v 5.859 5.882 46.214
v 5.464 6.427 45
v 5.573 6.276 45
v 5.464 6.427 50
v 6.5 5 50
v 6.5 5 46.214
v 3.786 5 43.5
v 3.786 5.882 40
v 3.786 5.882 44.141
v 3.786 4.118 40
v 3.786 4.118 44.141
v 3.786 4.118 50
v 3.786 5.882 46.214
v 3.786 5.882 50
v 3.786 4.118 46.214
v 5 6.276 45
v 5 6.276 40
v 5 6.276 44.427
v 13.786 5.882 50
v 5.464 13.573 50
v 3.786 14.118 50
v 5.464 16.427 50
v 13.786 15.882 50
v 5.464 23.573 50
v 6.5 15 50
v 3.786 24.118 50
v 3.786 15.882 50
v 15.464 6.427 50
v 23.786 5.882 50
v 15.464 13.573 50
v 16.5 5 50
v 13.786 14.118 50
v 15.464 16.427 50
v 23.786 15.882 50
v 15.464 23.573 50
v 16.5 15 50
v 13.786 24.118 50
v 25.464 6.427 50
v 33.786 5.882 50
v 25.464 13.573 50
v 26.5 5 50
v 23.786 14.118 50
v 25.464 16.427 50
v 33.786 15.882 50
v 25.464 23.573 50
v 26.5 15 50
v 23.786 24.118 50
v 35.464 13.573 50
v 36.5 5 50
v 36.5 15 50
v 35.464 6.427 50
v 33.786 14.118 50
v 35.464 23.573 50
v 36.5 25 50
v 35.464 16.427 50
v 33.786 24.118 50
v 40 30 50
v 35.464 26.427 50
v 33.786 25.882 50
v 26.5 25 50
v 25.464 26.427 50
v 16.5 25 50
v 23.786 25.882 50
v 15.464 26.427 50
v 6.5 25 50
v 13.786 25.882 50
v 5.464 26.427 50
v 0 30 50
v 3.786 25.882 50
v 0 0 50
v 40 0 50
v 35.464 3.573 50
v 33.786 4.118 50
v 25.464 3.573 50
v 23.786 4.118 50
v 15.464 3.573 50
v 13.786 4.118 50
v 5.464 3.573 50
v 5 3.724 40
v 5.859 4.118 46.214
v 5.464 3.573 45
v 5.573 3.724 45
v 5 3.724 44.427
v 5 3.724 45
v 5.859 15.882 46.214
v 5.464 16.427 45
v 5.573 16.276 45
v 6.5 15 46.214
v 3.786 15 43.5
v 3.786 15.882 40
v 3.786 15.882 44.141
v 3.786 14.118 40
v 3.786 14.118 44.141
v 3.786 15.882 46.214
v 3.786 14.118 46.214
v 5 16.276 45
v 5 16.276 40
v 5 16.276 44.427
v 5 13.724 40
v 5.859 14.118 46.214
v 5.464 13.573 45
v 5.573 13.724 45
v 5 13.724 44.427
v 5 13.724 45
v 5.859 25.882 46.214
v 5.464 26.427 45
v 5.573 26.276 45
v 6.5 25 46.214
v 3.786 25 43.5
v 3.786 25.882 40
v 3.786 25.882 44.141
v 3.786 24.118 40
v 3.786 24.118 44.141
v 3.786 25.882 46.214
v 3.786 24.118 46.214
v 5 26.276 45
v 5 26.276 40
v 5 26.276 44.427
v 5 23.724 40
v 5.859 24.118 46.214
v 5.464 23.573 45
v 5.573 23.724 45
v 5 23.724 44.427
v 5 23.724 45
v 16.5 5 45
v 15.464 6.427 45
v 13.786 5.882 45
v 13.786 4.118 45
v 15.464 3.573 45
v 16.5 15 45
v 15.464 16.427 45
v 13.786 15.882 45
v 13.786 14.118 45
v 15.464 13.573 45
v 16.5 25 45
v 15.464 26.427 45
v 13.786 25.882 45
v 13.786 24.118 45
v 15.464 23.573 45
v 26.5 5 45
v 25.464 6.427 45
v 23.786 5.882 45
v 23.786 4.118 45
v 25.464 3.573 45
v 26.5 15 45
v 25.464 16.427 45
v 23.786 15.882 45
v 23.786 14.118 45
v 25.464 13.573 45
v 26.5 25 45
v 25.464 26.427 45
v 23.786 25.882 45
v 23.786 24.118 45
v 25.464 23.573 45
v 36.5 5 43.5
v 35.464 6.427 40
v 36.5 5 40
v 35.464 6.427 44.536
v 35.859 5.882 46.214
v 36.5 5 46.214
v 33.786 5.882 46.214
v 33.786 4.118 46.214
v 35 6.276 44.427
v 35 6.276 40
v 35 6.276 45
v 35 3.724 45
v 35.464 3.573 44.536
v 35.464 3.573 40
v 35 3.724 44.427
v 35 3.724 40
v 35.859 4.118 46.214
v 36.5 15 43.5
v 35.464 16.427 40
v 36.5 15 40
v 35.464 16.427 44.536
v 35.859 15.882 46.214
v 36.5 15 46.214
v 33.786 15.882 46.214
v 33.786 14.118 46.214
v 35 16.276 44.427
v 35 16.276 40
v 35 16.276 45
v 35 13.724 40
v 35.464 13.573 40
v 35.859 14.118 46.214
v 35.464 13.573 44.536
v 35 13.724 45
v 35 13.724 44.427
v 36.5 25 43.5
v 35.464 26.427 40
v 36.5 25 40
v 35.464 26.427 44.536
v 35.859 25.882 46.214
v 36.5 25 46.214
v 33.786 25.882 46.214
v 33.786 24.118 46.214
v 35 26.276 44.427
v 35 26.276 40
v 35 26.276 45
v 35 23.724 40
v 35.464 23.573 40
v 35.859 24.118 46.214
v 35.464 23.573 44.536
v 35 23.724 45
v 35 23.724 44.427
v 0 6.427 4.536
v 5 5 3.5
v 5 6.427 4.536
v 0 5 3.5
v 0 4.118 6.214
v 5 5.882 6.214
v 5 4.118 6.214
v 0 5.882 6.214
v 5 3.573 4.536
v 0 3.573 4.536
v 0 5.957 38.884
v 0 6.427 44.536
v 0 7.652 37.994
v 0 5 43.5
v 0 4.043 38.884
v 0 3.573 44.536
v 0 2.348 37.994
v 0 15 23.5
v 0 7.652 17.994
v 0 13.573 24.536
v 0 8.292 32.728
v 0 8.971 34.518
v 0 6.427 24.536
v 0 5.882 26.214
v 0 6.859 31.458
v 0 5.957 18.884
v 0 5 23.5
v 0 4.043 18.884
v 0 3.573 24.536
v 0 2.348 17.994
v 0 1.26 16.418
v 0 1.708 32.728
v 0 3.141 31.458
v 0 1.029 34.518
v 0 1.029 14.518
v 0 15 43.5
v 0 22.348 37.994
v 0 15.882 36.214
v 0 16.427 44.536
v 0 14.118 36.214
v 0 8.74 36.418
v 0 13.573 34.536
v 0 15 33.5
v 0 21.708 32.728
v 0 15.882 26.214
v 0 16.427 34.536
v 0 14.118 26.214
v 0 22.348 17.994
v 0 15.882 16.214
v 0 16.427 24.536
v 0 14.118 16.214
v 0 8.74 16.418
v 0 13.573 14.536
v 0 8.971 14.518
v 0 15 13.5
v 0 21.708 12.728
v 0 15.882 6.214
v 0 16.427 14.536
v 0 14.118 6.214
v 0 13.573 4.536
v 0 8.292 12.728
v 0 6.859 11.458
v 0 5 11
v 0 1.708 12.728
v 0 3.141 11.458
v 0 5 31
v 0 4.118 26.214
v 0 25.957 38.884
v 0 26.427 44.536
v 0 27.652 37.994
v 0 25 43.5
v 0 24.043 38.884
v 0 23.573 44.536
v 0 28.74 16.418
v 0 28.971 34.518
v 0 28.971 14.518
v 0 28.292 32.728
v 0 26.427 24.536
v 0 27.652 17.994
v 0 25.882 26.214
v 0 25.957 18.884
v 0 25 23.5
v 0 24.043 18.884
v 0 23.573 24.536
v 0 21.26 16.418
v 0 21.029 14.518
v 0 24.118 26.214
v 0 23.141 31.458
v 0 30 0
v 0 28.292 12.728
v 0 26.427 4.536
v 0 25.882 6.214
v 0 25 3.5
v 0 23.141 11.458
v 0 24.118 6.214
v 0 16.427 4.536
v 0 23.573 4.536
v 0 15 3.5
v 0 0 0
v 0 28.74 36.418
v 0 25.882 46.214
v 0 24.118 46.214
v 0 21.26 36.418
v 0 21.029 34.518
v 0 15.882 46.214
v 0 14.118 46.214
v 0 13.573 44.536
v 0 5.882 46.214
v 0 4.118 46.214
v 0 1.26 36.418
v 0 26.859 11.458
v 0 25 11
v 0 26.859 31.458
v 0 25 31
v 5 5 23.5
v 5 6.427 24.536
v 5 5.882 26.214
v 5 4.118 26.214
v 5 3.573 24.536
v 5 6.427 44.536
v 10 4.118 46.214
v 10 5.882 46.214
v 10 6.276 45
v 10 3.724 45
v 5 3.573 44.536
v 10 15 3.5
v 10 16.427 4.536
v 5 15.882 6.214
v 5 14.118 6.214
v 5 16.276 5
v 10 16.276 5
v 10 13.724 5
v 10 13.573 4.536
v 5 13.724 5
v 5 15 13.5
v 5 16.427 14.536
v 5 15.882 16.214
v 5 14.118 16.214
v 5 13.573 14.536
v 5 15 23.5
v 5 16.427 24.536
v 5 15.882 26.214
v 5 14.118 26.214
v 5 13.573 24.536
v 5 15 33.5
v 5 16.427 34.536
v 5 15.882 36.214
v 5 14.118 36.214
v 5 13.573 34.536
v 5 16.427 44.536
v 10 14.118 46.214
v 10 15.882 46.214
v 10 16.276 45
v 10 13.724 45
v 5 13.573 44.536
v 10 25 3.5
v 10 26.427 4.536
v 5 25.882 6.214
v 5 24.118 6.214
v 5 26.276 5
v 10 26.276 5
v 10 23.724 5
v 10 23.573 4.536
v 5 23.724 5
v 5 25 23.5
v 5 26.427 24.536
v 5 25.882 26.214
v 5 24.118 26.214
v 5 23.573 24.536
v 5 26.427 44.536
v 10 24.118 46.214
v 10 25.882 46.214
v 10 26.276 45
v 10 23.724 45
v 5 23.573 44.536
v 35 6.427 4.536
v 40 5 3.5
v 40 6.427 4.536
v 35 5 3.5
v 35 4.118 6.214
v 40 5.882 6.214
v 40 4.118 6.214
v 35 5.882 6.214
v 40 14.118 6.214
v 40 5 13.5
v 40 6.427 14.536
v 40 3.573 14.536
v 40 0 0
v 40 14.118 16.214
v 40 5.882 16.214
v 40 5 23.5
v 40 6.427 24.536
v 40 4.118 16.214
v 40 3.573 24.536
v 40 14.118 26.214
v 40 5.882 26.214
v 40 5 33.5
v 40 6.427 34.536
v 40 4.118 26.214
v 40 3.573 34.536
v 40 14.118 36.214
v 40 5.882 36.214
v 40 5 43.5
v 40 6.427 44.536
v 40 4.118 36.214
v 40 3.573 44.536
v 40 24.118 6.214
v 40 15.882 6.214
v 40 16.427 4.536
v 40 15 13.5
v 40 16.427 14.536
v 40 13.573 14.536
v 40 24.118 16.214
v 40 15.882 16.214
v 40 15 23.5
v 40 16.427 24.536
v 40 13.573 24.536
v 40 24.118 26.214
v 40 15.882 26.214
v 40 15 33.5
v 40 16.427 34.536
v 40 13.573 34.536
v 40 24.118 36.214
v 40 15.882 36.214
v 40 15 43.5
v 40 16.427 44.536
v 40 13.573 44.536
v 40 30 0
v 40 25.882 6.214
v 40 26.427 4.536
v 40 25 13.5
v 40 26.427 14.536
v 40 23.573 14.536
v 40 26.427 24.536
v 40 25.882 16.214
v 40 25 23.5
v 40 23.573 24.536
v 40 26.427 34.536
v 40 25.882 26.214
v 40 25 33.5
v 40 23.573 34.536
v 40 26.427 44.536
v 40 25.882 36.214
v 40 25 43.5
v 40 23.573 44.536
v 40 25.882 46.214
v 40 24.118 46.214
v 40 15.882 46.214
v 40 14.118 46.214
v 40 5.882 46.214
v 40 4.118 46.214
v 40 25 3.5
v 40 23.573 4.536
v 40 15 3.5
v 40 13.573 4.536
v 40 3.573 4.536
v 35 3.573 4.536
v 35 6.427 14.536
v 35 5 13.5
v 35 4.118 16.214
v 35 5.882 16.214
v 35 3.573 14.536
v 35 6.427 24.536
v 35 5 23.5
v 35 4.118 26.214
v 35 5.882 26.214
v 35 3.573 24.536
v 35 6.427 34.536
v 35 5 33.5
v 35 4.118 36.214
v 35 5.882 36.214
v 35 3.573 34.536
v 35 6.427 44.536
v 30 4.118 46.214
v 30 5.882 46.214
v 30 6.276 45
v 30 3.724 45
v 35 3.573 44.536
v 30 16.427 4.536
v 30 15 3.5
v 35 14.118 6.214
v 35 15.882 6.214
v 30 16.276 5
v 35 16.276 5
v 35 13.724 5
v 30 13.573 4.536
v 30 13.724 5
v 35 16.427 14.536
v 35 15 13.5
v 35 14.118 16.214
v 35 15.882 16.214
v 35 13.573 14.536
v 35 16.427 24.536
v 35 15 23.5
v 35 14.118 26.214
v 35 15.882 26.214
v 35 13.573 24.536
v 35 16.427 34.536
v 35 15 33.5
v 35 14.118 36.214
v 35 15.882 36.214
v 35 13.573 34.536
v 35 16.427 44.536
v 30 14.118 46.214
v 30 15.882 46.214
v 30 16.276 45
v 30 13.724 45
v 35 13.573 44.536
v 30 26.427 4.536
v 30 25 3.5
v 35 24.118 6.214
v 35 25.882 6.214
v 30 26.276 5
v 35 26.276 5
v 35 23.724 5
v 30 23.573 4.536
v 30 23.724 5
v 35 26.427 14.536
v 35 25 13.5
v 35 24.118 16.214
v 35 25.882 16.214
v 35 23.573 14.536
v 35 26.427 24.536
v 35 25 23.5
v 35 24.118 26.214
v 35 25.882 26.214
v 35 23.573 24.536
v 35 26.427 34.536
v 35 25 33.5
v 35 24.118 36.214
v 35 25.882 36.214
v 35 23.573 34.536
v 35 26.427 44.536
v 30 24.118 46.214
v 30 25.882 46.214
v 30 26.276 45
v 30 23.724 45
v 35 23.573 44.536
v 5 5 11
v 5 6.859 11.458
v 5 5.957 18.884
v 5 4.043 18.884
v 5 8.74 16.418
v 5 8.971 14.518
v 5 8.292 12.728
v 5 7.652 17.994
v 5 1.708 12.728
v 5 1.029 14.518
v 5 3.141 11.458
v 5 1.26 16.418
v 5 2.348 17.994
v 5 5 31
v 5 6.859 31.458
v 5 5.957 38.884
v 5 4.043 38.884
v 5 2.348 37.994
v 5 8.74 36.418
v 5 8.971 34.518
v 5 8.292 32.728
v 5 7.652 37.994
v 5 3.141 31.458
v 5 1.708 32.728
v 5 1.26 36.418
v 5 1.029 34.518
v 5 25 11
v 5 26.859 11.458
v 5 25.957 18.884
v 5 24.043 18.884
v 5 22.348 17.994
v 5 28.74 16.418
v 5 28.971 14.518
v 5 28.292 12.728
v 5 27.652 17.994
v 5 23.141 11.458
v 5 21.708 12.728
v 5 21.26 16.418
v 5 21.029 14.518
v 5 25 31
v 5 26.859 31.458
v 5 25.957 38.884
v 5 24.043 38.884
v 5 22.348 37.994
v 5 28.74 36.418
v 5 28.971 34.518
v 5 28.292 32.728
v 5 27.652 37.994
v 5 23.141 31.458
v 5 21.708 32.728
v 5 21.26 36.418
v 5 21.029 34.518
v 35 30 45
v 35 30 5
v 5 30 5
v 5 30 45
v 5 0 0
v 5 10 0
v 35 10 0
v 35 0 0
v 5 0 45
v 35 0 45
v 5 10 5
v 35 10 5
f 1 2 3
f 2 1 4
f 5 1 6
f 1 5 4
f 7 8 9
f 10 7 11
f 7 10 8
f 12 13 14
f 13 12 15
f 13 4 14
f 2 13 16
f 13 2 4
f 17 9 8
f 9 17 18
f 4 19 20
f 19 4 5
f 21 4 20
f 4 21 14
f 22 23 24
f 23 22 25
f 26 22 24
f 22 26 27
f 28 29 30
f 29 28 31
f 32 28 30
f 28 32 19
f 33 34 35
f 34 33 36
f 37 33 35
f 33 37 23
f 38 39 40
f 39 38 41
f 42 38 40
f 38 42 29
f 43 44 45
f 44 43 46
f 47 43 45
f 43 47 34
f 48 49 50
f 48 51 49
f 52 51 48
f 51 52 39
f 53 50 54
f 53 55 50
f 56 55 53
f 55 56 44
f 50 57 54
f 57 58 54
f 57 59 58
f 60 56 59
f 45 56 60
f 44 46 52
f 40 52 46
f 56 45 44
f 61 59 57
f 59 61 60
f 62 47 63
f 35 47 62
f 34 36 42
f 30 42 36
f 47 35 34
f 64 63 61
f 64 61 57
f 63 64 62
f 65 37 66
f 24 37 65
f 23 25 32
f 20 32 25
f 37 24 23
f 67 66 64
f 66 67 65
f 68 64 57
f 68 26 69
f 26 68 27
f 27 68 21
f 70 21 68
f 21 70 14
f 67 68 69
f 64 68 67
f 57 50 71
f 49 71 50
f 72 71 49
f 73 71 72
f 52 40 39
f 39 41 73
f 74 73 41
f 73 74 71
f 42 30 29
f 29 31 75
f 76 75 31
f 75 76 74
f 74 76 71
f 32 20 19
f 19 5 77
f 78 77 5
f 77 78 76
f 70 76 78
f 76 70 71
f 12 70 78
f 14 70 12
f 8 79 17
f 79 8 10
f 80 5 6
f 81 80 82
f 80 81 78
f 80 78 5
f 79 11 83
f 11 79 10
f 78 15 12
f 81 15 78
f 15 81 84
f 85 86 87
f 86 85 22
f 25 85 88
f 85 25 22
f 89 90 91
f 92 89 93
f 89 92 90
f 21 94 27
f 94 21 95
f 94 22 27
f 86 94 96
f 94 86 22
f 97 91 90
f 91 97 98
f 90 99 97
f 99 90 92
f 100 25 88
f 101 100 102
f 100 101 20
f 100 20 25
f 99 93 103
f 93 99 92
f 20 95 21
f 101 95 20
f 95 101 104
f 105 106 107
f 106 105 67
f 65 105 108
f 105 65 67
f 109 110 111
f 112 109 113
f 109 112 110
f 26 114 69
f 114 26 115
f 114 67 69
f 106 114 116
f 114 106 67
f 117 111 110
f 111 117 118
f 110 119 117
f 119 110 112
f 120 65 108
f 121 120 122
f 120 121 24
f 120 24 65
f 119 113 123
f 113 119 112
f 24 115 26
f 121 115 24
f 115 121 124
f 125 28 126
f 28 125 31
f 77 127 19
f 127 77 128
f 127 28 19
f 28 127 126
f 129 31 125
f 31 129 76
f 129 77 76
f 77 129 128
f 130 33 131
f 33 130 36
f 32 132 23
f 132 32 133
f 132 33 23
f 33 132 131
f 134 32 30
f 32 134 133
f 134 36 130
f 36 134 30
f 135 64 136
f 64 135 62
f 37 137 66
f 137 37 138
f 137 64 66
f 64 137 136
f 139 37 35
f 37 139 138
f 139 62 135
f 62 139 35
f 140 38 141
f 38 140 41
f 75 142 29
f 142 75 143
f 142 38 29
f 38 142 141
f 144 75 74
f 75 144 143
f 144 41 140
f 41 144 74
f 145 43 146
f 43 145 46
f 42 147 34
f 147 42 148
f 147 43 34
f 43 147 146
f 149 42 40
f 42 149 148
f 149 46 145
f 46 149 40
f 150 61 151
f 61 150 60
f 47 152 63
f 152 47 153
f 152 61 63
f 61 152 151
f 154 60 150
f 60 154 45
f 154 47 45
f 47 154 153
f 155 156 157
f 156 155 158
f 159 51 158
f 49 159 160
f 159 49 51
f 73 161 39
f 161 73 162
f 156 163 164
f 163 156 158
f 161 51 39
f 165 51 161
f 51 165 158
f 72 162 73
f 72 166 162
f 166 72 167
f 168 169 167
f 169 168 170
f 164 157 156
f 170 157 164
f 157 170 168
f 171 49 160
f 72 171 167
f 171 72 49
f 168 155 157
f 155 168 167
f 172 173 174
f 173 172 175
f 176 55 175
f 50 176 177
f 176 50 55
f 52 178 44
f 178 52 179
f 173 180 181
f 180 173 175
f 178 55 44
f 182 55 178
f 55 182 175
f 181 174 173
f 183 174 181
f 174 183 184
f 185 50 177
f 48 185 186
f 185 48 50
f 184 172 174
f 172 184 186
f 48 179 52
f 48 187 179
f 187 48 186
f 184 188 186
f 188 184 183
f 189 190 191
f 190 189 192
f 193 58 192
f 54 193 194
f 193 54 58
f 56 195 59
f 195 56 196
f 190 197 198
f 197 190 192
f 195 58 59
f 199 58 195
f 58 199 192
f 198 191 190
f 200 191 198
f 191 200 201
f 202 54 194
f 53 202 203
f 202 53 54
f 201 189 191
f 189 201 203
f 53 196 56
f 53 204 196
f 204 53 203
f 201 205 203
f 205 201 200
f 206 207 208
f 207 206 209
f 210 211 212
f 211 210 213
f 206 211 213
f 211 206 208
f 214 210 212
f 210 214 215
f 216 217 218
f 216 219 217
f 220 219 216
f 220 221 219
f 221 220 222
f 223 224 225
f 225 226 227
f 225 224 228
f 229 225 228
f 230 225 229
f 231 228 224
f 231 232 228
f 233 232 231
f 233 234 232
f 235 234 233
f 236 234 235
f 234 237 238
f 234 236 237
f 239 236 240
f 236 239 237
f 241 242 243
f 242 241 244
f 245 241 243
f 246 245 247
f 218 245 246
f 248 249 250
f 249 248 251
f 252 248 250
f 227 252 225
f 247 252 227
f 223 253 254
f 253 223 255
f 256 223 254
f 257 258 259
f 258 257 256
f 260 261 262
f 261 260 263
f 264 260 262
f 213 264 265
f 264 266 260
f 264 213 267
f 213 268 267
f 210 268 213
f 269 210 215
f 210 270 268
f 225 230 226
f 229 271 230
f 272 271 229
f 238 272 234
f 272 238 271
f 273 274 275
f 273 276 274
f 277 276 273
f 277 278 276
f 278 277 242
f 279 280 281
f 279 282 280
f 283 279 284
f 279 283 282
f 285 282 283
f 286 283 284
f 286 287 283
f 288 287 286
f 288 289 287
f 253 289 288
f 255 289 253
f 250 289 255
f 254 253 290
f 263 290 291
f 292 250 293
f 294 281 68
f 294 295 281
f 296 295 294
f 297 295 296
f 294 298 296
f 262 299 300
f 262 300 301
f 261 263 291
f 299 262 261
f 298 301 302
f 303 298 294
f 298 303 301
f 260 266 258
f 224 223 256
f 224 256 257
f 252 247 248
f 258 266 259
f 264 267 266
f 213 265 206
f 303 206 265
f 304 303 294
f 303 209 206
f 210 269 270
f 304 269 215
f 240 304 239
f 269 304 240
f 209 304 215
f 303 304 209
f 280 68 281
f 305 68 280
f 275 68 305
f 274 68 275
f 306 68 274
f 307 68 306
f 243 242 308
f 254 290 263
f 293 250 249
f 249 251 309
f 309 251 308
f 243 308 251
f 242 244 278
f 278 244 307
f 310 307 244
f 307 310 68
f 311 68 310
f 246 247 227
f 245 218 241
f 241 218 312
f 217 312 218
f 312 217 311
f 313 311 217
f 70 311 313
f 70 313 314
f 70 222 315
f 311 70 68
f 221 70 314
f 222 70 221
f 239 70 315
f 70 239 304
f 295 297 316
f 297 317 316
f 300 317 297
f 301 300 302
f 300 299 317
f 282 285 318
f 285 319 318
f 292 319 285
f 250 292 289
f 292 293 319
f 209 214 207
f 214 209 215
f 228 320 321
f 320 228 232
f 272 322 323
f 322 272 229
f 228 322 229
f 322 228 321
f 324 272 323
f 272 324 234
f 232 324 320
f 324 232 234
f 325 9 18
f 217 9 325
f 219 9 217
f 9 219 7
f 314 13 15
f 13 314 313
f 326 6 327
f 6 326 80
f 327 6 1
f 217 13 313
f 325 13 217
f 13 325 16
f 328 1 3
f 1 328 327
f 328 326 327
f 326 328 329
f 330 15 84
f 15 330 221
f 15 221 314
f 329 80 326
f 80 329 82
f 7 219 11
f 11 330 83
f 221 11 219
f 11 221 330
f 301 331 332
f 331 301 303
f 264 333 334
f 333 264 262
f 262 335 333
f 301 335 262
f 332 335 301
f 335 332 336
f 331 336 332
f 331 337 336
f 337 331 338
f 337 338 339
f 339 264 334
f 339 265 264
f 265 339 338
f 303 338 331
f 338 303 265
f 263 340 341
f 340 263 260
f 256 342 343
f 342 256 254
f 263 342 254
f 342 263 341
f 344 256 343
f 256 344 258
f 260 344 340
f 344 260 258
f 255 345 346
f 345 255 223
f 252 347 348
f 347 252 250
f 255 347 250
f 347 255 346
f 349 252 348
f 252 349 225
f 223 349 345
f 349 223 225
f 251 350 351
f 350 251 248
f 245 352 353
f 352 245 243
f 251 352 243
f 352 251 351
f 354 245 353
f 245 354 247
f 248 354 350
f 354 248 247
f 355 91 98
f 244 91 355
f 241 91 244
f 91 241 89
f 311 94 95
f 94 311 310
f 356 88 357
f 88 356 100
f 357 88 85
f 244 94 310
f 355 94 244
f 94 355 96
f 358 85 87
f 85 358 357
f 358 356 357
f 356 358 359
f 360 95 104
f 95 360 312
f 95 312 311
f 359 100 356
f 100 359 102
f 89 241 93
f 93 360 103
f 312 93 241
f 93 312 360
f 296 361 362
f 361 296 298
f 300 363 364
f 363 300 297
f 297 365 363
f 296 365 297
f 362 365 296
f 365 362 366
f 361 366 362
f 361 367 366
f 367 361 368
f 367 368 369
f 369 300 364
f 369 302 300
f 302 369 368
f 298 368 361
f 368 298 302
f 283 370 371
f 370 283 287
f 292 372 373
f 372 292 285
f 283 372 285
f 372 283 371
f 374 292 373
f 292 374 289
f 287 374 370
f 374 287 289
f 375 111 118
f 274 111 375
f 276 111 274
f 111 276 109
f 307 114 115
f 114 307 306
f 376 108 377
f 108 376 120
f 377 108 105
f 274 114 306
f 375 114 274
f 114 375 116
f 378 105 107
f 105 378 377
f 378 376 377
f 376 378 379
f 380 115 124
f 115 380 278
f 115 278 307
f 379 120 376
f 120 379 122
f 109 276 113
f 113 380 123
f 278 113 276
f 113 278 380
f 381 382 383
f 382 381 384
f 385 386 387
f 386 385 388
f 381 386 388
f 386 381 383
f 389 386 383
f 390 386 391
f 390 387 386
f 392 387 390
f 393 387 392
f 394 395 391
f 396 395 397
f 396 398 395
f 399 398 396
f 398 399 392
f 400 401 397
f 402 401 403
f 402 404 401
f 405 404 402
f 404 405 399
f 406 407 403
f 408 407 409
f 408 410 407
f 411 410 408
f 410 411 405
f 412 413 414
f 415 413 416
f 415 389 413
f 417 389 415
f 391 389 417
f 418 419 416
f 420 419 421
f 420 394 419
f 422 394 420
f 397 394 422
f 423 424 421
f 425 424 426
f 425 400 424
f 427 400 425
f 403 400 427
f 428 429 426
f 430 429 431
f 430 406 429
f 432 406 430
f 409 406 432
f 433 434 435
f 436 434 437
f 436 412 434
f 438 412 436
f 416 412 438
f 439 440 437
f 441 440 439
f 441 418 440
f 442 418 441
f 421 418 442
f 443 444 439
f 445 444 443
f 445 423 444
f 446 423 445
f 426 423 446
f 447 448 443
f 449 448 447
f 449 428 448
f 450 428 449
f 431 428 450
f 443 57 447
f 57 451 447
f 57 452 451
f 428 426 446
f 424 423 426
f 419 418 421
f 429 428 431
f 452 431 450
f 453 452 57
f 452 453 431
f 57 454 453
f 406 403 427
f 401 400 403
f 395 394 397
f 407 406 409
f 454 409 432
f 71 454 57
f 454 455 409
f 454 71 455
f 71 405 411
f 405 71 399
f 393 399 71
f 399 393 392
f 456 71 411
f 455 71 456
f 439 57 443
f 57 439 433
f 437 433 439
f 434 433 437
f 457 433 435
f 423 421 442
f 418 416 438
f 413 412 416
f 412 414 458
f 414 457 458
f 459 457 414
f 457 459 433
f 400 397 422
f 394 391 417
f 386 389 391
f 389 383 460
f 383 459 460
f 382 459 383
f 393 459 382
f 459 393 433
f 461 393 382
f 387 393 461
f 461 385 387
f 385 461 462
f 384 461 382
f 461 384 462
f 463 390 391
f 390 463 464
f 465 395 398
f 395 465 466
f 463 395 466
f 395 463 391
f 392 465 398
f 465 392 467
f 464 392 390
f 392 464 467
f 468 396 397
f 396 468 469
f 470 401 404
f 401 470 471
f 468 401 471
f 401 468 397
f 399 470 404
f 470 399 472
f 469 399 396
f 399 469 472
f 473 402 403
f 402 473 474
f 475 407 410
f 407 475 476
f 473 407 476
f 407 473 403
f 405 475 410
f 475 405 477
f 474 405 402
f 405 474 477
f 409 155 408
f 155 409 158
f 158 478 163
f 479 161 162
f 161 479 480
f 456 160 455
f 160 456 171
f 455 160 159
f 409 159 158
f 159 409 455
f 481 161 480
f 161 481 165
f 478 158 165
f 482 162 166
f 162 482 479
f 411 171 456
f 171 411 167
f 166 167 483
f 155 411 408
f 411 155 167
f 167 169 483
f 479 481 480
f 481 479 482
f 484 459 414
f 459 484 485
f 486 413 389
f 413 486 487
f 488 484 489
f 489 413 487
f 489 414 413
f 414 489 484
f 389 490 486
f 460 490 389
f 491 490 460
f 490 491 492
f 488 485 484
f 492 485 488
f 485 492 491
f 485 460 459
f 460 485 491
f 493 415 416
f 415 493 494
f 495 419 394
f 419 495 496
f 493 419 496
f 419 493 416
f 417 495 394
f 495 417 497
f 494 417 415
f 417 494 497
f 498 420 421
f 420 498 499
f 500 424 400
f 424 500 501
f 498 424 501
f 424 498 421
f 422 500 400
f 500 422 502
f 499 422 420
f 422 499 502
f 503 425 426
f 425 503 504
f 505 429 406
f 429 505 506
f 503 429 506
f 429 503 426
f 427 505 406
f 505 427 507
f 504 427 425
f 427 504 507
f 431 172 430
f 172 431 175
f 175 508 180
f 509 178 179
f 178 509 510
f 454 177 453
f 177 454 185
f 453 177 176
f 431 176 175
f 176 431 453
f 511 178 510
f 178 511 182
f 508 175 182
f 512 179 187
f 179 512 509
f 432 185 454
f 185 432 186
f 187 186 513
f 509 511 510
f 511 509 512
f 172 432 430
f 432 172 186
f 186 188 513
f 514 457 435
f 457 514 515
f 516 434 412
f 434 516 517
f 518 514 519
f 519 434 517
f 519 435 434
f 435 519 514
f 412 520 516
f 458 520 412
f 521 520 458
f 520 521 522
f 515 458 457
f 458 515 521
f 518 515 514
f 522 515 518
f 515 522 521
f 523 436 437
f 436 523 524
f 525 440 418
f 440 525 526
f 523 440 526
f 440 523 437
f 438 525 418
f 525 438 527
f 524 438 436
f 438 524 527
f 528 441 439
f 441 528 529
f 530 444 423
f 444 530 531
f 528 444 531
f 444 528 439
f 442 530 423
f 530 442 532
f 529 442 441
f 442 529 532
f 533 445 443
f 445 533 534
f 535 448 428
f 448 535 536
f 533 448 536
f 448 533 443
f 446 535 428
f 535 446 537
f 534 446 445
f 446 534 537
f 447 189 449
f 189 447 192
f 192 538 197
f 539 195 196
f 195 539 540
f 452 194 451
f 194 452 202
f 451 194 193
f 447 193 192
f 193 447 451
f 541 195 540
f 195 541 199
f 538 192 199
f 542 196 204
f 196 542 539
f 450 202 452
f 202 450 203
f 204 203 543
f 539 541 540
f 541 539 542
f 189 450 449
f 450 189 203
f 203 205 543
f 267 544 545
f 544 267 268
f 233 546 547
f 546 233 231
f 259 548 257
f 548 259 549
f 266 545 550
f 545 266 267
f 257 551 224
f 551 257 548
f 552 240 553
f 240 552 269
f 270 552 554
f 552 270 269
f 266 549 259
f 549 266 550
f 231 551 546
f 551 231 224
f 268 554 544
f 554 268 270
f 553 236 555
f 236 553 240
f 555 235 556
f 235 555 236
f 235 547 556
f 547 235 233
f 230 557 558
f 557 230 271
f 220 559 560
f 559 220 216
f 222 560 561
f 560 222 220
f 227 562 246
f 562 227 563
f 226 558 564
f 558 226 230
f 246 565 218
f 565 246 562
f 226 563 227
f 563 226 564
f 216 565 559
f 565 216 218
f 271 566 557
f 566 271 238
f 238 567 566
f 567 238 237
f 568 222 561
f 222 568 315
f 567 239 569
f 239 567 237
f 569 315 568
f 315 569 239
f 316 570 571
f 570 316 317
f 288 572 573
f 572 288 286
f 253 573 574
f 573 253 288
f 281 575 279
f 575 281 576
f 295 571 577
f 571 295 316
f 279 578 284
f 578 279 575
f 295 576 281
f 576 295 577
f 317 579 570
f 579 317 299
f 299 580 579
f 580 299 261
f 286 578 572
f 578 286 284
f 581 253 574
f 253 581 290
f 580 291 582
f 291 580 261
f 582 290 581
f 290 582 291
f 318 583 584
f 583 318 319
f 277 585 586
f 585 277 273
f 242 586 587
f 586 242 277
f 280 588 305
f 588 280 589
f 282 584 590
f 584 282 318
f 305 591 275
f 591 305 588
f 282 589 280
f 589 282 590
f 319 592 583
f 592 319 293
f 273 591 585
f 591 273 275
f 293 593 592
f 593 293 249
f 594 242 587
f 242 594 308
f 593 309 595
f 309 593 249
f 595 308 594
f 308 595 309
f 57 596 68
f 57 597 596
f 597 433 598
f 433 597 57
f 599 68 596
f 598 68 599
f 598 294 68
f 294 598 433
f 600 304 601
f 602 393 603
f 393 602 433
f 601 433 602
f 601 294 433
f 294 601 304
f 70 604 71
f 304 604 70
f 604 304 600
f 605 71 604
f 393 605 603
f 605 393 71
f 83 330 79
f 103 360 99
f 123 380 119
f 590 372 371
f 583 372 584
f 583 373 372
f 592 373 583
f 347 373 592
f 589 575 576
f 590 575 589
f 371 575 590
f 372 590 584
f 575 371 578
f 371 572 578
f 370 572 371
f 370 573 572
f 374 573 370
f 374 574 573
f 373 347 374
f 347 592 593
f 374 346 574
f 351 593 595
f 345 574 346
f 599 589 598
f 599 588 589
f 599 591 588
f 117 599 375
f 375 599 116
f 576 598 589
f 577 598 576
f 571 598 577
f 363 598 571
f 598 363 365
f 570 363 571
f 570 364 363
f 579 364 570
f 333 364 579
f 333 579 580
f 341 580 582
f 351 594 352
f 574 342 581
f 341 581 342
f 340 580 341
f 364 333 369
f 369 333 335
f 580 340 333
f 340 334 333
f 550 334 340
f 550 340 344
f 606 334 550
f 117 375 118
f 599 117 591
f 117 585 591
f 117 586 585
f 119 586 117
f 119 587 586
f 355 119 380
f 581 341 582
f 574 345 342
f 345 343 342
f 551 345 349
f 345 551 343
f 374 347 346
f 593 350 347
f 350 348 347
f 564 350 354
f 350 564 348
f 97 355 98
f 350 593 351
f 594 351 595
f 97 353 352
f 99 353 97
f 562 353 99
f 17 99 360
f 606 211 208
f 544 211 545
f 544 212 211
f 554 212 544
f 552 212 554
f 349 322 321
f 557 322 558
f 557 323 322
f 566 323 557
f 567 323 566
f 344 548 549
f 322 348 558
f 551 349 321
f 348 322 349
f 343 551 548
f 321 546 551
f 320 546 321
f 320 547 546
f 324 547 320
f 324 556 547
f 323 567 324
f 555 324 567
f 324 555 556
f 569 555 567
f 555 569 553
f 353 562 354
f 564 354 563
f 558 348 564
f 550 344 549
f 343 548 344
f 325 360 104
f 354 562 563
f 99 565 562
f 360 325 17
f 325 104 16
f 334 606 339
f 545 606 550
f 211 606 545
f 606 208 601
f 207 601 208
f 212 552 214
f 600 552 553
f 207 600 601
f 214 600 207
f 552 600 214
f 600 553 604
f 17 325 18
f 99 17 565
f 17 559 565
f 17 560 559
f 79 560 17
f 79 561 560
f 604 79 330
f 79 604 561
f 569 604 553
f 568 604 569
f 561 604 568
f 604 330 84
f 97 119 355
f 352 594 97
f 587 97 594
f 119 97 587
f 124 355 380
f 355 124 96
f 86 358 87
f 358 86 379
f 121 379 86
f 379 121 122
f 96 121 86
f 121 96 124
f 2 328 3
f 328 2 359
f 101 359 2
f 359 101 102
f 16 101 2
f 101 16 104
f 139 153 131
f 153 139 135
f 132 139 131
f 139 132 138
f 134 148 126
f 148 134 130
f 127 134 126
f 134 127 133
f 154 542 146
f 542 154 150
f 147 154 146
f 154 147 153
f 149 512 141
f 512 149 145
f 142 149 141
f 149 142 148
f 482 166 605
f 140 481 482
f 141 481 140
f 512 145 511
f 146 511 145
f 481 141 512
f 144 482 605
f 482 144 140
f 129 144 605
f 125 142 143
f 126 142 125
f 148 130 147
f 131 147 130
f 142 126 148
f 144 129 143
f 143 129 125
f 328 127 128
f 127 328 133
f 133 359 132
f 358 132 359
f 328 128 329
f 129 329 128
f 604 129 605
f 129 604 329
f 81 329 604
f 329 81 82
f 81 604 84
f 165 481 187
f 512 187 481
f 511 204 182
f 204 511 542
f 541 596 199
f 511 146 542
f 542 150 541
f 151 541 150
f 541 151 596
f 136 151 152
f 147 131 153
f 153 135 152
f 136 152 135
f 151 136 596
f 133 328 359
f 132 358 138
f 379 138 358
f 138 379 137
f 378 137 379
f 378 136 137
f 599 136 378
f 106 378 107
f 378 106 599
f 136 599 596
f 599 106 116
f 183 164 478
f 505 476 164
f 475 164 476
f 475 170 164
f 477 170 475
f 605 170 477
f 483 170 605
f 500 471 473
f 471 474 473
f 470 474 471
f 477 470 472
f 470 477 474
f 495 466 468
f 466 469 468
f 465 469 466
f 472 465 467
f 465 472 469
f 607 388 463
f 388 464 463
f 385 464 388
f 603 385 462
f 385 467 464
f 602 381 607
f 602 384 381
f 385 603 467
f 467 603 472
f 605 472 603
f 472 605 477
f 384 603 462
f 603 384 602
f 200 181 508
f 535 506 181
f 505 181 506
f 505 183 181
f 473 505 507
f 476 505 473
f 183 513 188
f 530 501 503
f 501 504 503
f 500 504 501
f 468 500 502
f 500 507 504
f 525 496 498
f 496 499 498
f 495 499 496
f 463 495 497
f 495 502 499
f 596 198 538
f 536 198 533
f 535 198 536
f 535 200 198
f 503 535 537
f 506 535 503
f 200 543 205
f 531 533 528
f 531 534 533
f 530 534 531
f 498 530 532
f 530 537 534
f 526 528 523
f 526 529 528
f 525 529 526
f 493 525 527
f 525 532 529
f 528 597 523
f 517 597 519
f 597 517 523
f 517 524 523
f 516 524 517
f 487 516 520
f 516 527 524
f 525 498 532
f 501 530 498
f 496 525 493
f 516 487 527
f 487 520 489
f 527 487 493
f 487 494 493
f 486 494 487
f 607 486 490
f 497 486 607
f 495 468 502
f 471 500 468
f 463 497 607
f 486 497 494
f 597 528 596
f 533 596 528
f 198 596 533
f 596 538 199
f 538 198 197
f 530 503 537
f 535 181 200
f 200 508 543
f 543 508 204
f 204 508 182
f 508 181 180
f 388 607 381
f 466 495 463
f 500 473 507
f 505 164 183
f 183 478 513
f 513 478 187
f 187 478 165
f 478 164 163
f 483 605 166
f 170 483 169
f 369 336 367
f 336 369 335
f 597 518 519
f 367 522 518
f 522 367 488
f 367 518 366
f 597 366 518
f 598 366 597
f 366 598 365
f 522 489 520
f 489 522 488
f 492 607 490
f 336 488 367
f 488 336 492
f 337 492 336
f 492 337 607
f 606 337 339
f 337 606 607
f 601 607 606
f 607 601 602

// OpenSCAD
module main() {
	difference() {
		cube([40, 30, 50]);

		translate([5, 0, 5])
			cube([30, 30, 40]);

		for(x = [5:10:35])
			for(y = [5:10:25])
				translate([x, y, 40])
					cylinder(d = 3, h = 10);

		for(x = [0, 30])
			for(y = [5:10:25])
				for(z = [5:10:45])
					translate([x, y, z])
						rotate([0, 90, 0])
							cylinder(d = 3, h = 10);

		for(y = [5, 25])
			for(z = [15, 35])
				translate([0, y, z])
					rotate([0, 90, 0])
						cylinder(d = 8, h = 10);

		translate([5, 0, 0])
			cube([30, 10, 5]);
	}
}

main();
